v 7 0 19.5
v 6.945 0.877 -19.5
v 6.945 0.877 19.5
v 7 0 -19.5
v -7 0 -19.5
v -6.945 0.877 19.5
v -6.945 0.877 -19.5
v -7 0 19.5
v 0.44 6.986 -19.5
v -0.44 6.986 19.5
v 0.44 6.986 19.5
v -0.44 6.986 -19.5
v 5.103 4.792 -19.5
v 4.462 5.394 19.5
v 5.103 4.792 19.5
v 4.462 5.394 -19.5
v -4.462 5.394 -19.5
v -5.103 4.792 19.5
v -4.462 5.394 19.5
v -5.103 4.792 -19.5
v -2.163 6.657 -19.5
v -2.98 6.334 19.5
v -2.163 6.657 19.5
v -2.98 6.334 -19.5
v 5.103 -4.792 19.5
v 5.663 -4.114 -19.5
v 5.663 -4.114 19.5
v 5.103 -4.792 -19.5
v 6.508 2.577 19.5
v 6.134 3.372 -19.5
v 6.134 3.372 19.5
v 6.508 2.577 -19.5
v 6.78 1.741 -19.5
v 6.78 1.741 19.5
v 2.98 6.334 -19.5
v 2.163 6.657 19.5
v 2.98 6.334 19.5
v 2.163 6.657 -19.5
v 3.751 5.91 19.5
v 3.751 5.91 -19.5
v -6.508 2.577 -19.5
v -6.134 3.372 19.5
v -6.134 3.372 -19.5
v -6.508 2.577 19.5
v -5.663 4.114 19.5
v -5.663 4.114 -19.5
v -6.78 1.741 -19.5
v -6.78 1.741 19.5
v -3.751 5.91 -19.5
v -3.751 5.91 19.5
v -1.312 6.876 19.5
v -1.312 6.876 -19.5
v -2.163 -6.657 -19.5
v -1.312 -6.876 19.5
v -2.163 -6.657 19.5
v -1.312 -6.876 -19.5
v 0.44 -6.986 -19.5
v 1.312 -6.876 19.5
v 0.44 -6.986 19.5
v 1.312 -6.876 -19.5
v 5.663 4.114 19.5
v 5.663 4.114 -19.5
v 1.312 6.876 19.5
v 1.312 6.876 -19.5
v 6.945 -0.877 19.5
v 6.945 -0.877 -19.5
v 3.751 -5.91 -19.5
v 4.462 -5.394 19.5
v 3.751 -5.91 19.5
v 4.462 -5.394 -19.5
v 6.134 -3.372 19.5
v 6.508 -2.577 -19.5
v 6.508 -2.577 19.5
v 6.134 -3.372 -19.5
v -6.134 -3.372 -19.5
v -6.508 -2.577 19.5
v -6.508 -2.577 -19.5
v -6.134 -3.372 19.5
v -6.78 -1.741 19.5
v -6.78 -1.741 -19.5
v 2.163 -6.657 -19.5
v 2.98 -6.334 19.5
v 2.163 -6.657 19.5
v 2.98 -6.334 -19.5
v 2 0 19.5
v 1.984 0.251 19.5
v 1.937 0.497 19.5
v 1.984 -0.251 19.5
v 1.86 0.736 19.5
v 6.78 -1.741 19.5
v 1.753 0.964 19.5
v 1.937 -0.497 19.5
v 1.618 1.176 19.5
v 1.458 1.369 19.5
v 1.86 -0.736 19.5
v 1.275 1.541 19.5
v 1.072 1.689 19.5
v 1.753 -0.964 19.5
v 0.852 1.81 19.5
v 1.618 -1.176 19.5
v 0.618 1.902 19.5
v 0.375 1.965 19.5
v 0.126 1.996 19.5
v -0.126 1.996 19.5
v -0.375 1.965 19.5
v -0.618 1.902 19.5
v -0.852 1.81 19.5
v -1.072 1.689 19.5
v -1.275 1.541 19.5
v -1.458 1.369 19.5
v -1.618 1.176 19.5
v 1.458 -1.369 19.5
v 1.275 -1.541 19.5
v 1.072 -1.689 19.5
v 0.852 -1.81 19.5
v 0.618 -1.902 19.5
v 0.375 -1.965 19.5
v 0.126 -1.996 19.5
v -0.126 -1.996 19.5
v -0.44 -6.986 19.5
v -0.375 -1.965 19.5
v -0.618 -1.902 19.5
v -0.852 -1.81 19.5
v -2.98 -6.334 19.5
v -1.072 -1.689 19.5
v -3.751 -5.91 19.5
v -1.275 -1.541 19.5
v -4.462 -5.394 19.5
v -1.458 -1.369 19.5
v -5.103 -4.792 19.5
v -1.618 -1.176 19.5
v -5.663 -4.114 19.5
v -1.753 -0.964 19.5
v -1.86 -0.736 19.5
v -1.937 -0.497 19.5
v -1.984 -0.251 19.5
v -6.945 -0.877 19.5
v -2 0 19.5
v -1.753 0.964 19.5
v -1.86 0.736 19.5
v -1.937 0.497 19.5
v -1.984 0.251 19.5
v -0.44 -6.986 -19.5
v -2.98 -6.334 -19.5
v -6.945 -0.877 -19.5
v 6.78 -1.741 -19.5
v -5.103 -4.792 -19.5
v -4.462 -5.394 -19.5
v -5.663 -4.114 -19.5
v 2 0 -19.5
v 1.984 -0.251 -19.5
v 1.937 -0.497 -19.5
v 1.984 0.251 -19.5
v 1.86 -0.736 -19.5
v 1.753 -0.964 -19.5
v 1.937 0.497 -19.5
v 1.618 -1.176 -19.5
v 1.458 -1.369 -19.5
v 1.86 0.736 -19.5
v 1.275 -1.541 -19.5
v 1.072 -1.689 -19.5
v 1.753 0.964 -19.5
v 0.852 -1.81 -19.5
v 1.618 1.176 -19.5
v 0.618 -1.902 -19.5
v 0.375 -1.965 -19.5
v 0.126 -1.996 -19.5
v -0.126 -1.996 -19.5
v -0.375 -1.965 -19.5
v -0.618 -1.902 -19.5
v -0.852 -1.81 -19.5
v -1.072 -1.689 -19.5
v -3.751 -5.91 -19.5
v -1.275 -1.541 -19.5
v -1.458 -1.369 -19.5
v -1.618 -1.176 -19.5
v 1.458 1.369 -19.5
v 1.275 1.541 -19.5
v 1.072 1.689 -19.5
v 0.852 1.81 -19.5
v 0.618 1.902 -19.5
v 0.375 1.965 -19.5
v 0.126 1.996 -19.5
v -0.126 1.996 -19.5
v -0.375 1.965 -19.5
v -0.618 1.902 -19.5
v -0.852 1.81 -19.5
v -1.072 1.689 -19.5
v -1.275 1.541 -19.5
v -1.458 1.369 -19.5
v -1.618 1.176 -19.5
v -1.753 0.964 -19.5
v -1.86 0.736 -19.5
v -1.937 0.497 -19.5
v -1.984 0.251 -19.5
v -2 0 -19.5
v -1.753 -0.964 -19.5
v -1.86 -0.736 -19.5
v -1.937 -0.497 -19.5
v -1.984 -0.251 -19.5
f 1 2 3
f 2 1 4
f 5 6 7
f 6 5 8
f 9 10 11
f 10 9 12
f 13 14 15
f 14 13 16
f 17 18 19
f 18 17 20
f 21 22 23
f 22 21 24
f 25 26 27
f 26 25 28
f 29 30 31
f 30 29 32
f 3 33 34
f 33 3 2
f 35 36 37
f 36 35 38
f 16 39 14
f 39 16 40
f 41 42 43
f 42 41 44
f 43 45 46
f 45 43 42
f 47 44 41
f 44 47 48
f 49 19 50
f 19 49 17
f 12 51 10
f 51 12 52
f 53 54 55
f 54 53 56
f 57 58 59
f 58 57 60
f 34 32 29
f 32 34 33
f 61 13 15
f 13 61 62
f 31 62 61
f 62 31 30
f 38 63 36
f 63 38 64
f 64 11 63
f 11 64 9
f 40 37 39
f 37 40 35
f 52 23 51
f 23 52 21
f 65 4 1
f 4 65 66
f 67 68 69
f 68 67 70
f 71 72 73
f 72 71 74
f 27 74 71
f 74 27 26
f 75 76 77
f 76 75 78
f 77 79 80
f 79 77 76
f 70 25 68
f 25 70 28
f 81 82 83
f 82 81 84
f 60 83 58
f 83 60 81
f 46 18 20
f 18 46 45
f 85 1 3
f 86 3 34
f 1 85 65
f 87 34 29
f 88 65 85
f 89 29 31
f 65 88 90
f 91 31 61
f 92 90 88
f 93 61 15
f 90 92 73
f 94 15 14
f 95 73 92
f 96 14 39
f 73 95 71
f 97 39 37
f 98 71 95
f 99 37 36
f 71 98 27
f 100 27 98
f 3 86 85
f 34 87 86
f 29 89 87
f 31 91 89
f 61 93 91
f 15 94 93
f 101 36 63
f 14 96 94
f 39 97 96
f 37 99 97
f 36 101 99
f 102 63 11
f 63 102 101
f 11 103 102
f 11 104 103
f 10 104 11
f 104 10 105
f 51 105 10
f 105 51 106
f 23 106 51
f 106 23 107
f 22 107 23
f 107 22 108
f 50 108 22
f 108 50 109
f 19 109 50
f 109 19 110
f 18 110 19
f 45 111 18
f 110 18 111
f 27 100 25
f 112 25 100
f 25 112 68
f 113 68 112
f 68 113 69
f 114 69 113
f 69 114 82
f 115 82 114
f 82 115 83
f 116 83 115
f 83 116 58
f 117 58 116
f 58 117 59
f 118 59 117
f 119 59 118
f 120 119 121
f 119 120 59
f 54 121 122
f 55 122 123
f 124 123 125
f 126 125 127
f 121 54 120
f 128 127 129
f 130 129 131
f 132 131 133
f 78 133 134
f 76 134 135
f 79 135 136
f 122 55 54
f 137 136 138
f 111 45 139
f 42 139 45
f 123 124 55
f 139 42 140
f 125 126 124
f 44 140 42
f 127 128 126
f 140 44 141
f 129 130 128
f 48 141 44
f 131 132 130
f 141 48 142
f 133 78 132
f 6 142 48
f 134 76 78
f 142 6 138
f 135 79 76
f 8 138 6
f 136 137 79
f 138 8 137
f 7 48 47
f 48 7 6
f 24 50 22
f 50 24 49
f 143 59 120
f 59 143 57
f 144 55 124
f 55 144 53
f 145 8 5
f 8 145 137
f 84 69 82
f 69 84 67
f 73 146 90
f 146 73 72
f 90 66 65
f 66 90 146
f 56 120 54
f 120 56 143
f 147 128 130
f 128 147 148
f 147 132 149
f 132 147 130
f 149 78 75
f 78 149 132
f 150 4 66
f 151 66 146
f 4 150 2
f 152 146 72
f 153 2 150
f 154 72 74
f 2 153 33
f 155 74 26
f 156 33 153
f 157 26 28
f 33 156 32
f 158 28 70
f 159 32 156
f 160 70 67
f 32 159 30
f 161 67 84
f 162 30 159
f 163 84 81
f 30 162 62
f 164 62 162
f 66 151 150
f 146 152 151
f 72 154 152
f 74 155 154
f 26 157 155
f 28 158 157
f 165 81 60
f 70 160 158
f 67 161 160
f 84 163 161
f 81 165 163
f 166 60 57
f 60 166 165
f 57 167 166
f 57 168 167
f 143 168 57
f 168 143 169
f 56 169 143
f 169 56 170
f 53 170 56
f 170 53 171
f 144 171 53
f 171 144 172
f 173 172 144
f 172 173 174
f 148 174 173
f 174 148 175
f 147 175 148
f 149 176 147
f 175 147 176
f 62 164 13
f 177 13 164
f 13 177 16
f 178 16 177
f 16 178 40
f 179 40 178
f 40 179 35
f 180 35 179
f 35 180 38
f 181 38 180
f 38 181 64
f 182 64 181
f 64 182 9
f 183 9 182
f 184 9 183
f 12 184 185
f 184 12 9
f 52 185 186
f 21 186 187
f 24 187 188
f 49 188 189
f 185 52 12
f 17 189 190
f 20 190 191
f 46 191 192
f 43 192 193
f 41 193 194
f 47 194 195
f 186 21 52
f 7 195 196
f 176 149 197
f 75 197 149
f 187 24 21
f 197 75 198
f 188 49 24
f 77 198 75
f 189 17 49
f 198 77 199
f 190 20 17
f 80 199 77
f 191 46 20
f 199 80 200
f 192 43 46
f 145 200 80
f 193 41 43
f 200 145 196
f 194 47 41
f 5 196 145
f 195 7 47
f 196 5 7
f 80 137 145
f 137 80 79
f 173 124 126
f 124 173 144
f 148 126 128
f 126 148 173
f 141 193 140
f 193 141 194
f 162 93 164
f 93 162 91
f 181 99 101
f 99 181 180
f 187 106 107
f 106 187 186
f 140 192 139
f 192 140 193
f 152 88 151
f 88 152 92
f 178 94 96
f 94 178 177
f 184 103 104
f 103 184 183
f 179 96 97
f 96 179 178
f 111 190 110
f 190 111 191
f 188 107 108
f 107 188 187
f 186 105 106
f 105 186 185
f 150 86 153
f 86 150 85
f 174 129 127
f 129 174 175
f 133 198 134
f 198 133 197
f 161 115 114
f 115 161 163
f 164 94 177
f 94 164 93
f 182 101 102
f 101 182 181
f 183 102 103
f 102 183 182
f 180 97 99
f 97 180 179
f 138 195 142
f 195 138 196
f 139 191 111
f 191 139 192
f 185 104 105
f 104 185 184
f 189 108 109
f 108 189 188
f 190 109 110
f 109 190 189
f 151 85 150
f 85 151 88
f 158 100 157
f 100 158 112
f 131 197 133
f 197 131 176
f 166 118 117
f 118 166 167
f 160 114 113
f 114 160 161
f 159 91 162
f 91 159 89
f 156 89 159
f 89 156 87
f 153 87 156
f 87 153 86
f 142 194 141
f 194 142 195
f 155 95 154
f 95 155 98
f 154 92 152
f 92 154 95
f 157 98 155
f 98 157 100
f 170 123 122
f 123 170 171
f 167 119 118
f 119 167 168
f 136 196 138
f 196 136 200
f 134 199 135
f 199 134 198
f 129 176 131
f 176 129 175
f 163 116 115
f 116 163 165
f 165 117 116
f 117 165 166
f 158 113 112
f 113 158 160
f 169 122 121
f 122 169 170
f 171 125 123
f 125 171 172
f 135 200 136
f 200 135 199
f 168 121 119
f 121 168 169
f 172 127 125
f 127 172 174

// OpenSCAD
$fn = 50;


difference() {
	union() {
		translate(v = [0, 0, -19.5000000000]) {
			cylinder(h = 39, r = 7.0000000000);
		}
	}
	union() {
		translate(v = [0, 0, -100.0000000000]) {
			cylinder(h = 200, r = 2.0000000000);
		}
	}
}
